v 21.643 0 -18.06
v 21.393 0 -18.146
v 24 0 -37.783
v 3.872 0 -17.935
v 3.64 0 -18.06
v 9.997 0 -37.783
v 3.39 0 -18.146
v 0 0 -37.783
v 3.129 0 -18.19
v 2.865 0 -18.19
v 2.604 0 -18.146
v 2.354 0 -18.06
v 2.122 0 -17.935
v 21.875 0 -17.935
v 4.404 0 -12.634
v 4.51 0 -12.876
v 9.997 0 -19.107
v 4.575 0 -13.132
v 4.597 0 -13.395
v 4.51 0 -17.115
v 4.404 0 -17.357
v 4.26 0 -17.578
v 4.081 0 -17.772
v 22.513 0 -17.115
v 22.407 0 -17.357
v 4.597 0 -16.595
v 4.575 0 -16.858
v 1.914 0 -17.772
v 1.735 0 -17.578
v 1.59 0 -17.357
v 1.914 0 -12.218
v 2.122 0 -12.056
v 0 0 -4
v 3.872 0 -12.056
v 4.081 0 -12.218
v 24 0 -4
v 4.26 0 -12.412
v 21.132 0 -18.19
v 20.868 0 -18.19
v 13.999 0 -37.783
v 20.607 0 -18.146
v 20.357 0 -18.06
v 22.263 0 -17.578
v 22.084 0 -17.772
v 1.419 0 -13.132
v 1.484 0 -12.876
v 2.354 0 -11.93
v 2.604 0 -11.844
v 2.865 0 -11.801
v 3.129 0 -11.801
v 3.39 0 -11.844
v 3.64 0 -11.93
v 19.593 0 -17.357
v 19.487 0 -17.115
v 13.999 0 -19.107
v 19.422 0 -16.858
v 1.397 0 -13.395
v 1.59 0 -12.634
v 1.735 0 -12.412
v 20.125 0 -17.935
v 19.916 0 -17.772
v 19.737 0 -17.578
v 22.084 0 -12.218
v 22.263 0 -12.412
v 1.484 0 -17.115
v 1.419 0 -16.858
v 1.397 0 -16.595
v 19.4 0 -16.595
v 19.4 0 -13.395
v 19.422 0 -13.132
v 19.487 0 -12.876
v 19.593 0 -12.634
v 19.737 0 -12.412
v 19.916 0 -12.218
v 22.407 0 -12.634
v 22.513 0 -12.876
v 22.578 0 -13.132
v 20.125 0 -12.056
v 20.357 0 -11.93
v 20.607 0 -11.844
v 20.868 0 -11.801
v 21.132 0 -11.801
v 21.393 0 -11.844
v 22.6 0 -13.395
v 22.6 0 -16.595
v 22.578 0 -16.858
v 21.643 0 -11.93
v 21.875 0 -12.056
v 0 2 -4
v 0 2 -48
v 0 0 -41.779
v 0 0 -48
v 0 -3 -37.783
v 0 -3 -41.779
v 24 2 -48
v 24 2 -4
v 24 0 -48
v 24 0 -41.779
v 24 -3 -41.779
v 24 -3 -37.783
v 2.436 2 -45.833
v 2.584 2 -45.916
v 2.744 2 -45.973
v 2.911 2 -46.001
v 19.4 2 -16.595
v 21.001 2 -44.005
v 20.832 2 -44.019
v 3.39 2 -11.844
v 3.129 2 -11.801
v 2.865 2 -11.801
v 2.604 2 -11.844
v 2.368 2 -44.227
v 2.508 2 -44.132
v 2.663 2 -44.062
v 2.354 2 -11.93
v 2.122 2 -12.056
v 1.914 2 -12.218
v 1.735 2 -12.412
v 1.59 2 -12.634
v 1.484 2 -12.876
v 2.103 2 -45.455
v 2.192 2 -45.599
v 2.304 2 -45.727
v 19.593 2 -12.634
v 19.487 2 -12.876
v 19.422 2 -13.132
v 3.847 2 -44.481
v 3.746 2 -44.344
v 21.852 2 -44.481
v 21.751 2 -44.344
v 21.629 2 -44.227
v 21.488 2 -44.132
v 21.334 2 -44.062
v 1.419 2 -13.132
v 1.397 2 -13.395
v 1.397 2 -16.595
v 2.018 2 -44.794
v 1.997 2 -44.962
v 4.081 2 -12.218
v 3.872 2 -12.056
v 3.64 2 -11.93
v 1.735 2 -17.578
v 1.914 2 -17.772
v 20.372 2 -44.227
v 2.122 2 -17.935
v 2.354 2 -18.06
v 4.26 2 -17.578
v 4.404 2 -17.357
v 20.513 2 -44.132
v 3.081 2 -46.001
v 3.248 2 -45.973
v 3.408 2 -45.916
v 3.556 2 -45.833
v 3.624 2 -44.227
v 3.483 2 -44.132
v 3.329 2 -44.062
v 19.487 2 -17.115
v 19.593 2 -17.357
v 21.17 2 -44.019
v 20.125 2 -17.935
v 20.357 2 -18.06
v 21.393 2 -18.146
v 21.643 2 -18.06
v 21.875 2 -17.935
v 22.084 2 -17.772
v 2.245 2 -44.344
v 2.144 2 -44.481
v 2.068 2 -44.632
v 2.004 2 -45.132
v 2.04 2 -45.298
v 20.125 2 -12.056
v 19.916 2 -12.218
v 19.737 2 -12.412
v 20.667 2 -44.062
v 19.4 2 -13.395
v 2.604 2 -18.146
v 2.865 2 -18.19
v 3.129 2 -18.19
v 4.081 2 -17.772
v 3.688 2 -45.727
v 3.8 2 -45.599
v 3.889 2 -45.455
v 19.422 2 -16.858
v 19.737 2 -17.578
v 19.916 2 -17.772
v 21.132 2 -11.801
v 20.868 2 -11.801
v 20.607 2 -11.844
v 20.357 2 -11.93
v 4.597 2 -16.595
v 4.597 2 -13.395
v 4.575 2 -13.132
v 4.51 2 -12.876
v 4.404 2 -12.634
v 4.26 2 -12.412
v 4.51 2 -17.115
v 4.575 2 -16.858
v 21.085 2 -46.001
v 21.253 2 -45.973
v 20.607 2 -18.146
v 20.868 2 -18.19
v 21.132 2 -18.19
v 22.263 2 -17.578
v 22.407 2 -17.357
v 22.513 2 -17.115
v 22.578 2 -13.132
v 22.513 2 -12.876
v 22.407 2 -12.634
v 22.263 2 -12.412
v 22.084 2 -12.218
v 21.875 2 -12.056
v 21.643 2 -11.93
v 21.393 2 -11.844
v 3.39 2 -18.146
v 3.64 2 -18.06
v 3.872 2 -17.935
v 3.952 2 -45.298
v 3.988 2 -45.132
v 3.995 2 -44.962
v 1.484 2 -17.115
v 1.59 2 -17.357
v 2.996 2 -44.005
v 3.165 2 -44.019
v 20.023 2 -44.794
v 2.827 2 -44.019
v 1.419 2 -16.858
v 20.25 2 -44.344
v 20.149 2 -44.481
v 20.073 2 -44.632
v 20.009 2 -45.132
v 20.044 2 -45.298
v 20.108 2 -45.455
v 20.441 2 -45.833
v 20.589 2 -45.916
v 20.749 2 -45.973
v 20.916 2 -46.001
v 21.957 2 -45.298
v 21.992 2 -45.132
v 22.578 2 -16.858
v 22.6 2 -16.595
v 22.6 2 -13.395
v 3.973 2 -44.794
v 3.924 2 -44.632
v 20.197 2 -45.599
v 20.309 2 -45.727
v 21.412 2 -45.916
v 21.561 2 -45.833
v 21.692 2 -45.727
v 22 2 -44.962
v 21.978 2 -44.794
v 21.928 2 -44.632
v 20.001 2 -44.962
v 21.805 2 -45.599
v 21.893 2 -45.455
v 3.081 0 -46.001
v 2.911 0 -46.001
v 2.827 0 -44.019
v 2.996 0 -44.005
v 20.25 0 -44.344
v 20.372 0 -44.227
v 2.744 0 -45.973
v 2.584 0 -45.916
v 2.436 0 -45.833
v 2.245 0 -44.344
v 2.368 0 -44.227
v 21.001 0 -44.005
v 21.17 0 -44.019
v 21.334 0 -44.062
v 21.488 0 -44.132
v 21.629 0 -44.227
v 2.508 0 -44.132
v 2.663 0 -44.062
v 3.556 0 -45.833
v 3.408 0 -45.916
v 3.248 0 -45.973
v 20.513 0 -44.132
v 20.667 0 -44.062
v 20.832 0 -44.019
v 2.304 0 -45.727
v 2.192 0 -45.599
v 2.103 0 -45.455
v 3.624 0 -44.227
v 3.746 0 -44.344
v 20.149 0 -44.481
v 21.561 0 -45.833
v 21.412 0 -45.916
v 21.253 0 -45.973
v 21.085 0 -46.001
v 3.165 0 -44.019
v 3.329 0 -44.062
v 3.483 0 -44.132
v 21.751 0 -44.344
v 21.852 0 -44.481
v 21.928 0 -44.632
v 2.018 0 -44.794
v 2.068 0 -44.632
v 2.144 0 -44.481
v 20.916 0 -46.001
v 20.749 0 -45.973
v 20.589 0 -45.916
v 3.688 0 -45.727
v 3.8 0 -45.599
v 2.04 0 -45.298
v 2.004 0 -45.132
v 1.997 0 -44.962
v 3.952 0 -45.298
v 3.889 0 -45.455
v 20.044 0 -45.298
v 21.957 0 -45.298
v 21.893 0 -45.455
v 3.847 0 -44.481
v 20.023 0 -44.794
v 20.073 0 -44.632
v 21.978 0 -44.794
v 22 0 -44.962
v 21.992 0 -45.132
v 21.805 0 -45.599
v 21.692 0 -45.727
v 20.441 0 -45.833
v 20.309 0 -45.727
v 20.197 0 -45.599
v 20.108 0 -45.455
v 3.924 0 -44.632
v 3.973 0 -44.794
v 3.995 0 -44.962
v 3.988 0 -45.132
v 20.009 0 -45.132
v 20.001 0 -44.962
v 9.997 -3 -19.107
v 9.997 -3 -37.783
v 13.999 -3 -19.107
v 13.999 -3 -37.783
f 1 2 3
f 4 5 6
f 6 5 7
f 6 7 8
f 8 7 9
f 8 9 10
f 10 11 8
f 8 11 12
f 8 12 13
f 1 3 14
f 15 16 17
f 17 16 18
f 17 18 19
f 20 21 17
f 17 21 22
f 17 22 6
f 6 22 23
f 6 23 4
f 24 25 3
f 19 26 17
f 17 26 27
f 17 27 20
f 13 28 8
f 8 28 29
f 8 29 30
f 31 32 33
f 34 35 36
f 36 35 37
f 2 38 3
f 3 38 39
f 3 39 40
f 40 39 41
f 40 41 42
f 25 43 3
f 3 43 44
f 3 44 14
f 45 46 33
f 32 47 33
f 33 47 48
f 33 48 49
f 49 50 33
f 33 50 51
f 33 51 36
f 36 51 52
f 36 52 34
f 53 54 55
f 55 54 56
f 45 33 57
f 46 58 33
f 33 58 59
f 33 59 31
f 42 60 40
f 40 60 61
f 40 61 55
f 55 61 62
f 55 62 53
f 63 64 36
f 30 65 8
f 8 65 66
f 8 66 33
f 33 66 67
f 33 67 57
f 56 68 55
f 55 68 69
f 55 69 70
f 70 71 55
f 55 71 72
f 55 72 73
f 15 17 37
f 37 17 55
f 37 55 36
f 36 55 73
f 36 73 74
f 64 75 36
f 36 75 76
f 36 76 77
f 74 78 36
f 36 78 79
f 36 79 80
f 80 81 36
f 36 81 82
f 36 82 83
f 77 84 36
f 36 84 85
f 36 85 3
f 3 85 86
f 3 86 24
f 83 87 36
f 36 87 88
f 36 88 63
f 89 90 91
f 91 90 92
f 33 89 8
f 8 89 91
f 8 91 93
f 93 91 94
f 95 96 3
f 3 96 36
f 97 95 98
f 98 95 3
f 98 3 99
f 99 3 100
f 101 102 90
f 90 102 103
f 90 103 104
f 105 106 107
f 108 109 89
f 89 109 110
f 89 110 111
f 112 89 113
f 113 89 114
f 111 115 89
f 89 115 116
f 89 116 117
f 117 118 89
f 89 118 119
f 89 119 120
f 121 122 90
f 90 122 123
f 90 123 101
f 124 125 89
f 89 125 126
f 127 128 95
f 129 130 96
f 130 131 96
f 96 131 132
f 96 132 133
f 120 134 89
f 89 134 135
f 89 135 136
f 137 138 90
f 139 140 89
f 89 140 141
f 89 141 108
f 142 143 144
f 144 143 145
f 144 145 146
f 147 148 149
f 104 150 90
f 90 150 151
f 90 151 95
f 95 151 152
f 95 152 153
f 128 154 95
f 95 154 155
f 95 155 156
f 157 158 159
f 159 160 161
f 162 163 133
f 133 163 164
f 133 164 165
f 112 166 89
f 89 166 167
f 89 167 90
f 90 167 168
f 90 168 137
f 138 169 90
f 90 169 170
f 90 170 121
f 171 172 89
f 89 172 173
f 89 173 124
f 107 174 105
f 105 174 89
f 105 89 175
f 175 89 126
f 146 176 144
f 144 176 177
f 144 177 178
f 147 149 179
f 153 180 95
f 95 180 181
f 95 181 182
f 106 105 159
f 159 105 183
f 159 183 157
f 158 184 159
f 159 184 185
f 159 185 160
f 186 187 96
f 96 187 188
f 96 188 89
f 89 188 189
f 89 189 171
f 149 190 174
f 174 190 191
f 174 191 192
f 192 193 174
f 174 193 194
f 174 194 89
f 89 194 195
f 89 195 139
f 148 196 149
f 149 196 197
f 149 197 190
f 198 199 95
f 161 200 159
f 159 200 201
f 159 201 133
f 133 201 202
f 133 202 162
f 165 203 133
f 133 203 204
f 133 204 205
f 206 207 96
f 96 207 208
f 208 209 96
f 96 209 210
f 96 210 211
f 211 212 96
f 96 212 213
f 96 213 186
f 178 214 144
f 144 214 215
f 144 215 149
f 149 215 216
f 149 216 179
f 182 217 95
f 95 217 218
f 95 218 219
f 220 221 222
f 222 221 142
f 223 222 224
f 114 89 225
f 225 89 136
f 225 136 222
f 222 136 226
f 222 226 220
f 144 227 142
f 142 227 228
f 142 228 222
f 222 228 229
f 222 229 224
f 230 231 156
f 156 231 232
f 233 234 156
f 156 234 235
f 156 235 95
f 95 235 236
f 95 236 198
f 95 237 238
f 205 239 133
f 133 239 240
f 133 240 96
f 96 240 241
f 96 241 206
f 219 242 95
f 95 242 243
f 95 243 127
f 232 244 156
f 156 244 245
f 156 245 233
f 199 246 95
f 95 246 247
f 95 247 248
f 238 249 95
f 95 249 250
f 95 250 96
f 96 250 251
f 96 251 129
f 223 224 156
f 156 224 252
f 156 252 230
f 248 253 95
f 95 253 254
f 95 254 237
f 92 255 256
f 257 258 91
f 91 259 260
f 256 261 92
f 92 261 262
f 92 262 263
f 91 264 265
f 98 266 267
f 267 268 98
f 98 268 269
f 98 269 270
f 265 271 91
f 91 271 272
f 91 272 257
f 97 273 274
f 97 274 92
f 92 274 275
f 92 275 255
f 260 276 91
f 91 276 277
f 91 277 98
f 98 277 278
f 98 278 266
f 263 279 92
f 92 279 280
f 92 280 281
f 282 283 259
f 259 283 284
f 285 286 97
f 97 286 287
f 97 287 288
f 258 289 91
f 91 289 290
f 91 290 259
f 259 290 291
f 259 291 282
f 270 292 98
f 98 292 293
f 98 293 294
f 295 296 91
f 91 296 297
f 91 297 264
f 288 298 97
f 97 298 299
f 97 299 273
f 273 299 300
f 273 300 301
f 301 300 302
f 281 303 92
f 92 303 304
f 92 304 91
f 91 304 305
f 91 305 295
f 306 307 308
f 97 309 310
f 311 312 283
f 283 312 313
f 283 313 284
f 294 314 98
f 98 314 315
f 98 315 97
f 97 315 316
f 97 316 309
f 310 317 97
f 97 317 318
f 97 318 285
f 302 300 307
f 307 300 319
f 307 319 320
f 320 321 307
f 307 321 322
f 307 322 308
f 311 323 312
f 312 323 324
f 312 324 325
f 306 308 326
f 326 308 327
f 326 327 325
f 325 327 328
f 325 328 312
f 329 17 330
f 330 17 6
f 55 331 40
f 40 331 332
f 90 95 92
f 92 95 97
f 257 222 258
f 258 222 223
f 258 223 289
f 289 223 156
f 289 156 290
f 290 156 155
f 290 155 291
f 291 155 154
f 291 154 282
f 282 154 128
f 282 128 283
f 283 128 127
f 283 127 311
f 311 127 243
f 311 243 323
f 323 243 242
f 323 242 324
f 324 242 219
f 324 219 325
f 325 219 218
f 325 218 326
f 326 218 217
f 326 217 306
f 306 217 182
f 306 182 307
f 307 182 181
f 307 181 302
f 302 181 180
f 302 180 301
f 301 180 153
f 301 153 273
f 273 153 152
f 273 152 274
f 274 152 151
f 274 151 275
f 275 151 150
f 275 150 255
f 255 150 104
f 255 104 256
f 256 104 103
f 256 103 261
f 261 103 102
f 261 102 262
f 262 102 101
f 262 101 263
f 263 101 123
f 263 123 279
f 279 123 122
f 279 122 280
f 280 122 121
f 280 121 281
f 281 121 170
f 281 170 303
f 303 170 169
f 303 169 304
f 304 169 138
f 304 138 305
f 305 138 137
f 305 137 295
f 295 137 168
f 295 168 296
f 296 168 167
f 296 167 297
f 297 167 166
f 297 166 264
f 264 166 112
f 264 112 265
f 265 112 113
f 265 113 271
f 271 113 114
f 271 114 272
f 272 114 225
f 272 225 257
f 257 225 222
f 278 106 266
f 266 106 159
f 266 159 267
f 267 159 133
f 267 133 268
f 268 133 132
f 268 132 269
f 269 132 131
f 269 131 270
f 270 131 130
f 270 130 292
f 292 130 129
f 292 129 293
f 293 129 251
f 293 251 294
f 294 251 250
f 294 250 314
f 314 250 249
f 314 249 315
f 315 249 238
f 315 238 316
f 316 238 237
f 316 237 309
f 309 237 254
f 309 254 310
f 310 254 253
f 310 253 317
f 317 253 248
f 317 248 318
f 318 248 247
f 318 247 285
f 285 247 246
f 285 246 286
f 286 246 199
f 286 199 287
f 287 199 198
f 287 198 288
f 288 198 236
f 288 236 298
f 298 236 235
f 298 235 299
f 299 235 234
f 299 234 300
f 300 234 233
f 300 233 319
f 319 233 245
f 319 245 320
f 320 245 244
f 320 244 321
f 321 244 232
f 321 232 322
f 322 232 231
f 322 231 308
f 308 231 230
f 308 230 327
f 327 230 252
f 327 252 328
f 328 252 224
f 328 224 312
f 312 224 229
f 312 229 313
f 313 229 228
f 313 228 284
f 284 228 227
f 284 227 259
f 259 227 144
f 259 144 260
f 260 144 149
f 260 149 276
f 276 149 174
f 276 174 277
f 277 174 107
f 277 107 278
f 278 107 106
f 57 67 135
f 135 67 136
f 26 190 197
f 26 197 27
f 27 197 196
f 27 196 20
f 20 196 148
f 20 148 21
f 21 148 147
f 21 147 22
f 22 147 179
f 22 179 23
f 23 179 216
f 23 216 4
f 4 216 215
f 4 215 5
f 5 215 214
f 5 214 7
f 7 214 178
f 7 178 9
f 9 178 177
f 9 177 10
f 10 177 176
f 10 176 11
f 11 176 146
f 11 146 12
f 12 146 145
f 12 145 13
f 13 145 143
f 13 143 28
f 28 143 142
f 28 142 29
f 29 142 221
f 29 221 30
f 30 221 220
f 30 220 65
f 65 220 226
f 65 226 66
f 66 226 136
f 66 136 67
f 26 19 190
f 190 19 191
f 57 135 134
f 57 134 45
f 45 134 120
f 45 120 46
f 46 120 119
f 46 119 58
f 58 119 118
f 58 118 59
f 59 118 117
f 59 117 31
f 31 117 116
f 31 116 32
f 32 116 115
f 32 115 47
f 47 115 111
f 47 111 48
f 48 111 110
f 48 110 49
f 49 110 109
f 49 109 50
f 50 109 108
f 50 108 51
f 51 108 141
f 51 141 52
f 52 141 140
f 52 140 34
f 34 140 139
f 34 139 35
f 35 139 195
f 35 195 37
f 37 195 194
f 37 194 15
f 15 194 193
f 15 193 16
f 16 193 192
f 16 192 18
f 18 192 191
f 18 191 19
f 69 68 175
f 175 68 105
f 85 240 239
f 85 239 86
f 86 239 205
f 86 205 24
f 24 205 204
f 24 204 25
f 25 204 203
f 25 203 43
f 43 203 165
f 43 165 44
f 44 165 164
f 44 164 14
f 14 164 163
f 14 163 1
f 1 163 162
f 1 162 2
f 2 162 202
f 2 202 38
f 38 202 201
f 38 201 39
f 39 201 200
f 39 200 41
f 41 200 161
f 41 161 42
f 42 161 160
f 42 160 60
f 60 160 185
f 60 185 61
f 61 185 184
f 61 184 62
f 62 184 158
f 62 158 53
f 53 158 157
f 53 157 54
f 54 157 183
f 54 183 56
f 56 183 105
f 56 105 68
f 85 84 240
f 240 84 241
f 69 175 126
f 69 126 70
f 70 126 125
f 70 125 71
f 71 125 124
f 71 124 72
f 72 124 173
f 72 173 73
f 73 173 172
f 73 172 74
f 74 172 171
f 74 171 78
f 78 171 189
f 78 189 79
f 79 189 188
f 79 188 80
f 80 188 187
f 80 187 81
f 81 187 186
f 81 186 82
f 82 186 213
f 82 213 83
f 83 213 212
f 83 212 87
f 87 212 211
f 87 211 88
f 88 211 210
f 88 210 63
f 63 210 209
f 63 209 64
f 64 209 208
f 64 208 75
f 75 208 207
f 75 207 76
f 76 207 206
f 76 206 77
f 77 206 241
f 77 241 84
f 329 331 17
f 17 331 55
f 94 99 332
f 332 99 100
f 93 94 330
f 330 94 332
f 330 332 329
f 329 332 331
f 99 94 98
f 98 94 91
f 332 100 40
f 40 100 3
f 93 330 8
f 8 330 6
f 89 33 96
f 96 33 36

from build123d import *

# Parameters (mm, degrees)
SKETCH1_W           = 24
SKETCH1_H           = 48
BOSS_EXTRUDE1_DEPTH = 2
SKETCH2_R           = 1
CUT_EXTRUDE1_DEPTH  = 2
SKETCH3_R           = 1.6
CUT_EXTRUDE2_DEPTH  = 2
SKETCH5_W           = 4.002629444
SKETCH5_H           = 28.892829006
BOSS_EXTRUDE2_DEPTH = 3
SKETCH7_W           = 4.002629444
SKETCH7_H           = 6.221455563
CUT_EXTRUDE3_DEPTH  = 3
SKETCH8_W           = 10.000621013
SKETCH8_H           = 3.995270277
SKETCH8_W_2         = 9.996749543
BOSS_EXTRUDE3_DEPTH = 3
SKETCH9_W           = 24
SKETCH9_H           = 2
CUT_EXTRUDE4_DEPTH  = 4


with BuildPart() as part:
    # Sketch1 → Boss-Extrude1 (new body)
    with BuildSketch(Plane(origin=(0, 0, 0), x_dir=(1, 0, 0), z_dir=(0, 1, 0))):
        with Locations((12, 24)):
            Rectangle(SKETCH1_W, SKETCH1_H)
    extrude(amount=BOSS_EXTRUDE1_DEPTH)

    # Sketch2 → Cut-Extrude1 (cut)
    with BuildSketch(Plane(origin=(0, 2, 0), x_dir=(1, 0, 0), z_dir=(0, 1, 0))):
        with Locations(Location((2.995742756, 45.004810193, 0), (0, 0, 270))):
            Circle(SKETCH2_R)
        with Locations(Location((21.000528316, 45.004810193, 0), (0, 0, 270))):
            Circle(SKETCH2_R)
    extrude(amount=-CUT_EXTRUDE1_DEPTH, mode=Mode.SUBTRACT)

    # Sketch3 → Cut-Extrude2 (cut)
    with BuildSketch(Plane(origin=(0, 2, 0), x_dir=(1, 0, 0), z_dir=(0, 1, 0))):
        with Locations((2.997154371, 14.995076851)):
            Circle(SKETCH3_R)
        with Locations((2.997154371, 16.595076851)):
            Circle(SKETCH3_R)
        with Locations((2.997154371, 13.395076851)):
            Circle(SKETCH3_R)
        with BuildLine():
            ThreePointArc((1.611513725, 15.795076851), (1.451673049, 16.180966379), (1.397154371, 16.595076851))
            Line((1.397154371, 16.595076851), (1.397154371, 14.995076851))
            ThreePointArc((1.397154371, 14.995076851), (1.451673049, 15.409187323), (1.611513725, 15.795076851))
        make_face()
        with BuildLine():
            ThreePointArc((1.611513725, 14.195076851), (1.451673049, 14.580966379), (1.397154371, 14.995076851))
            Line((1.397154371, 14.995076851), (1.397154371, 13.395076851))
            ThreePointArc((1.397154371, 13.395076851), (1.451673049, 13.809187323), (1.611513725, 14.195076851))
        make_face()
        with BuildLine():
            Line((4.597154371, 13.395076851), (4.597154371, 14.995076851))
            ThreePointArc((4.597154371, 14.995076851), (4.542635694, 14.580966379), (4.382795018, 14.195076851))
            ThreePointArc((4.382795018, 14.195076851), (4.542635694, 13.809187323), (4.597154371, 13.395076851))
        make_face()
        with BuildLine():
            Line((4.597154371, 14.995076851), (4.597154371, 16.595076851))
            ThreePointArc((4.597154371, 16.595076851), (4.542635694, 16.180966379), (4.382795018, 15.795076851))
            ThreePointArc((4.382795018, 15.795076851), (4.542635694, 15.409187323), (4.597154371, 14.995076851))
        make_face()
        with Locations((21.000046924, 14.995076851)):
            Circle(SKETCH3_R)
        with Locations((21.000046924, 16.595076851)):
            Circle(SKETCH3_R)
        with Locations((21.000046924, 13.395076851)):
            Circle(SKETCH3_R)
        with BuildLine():
            Line((22.600046924, 13.395076851), (22.600046924, 14.995076851))
            ThreePointArc((22.600046924, 14.995076851), (22.545528247, 14.580966379), (22.385687571, 14.195076851))
            ThreePointArc((22.385687571, 14.195076851), (22.545528247, 13.809187323), (22.600046924, 13.395076851))
        make_face()
        with BuildLine():
            Line((22.600046924, 14.995076851), (22.600046924, 16.595076851))
            ThreePointArc((22.600046924, 16.595076851), (22.545528247, 16.180966379), (22.385687571, 15.795076851))
            ThreePointArc((22.385687571, 15.795076851), (22.545528247, 15.409187323), (22.600046924, 14.995076851))
        make_face()
        with BuildLine():
            ThreePointArc((19.614406278, 15.795076851), (19.454565602, 16.180966379), (19.400046924, 16.595076851))
            Line((19.400046924, 16.595076851), (19.400046924, 14.995076851))
            ThreePointArc((19.400046924, 14.995076851), (19.454565602, 15.409187323), (19.614406278, 15.795076851))
        make_face()
        with BuildLine():
            ThreePointArc((19.614406278, 14.195076851), (19.454565602, 14.580966379), (19.400046924, 14.995076851))
            Line((19.400046924, 14.995076851), (19.400046924, 13.395076851))
            ThreePointArc((19.400046924, 13.395076851), (19.454565602, 13.809187323), (19.614406278, 14.195076851))
        make_face()
    extrude(amount=-CUT_EXTRUDE2_DEPTH, mode=Mode.SUBTRACT)

    # Sketch5 → Boss-Extrude2 (add)
    with BuildSketch(Plane(origin=(0, 0, 0), x_dir=(-1, 0, 0), z_dir=(0, -1, 0))):
        with Locations((-11.998064265, 33.553585497)):
            Rectangle(SKETCH5_W, SKETCH5_H)
    extrude(amount=BOSS_EXTRUDE2_DEPTH)

    # Sketch7 → Cut-Extrude3 (cut)
    with BuildSketch(Plane(origin=(0, -3, 0), x_dir=(-1, 0, 0), z_dir=(0, -1, 0))):
        with Locations((-11.998064265, 44.889272218)):
            Rectangle(SKETCH7_W, SKETCH7_H)
    extrude(amount=-CUT_EXTRUDE3_DEPTH, mode=Mode.SUBTRACT)

    # Sketch8 → Boss-Extrude3 (add)
    with BuildSketch(Plane(origin=(0, 0, 0), x_dir=(-1, 0, 0), z_dir=(0, -1, 0))):
        with Locations((-18.999689494, 39.780909299)):
            Rectangle(SKETCH8_W, SKETCH8_H)
        with Locations((-4.998374771, 39.780909299)):
            Rectangle(SKETCH8_W_2, SKETCH8_H)
    extrude(amount=BOSS_EXTRUDE3_DEPTH)

    # Sketch9 → Cut-Extrude4 (cut)
    with BuildSketch(Plane.XY):
        with Locations((12, 1)):
            Rectangle(SKETCH9_W, SKETCH9_H)
    extrude(amount=-CUT_EXTRUDE4_DEPTH, mode=Mode.SUBTRACT)


solid = part.part
